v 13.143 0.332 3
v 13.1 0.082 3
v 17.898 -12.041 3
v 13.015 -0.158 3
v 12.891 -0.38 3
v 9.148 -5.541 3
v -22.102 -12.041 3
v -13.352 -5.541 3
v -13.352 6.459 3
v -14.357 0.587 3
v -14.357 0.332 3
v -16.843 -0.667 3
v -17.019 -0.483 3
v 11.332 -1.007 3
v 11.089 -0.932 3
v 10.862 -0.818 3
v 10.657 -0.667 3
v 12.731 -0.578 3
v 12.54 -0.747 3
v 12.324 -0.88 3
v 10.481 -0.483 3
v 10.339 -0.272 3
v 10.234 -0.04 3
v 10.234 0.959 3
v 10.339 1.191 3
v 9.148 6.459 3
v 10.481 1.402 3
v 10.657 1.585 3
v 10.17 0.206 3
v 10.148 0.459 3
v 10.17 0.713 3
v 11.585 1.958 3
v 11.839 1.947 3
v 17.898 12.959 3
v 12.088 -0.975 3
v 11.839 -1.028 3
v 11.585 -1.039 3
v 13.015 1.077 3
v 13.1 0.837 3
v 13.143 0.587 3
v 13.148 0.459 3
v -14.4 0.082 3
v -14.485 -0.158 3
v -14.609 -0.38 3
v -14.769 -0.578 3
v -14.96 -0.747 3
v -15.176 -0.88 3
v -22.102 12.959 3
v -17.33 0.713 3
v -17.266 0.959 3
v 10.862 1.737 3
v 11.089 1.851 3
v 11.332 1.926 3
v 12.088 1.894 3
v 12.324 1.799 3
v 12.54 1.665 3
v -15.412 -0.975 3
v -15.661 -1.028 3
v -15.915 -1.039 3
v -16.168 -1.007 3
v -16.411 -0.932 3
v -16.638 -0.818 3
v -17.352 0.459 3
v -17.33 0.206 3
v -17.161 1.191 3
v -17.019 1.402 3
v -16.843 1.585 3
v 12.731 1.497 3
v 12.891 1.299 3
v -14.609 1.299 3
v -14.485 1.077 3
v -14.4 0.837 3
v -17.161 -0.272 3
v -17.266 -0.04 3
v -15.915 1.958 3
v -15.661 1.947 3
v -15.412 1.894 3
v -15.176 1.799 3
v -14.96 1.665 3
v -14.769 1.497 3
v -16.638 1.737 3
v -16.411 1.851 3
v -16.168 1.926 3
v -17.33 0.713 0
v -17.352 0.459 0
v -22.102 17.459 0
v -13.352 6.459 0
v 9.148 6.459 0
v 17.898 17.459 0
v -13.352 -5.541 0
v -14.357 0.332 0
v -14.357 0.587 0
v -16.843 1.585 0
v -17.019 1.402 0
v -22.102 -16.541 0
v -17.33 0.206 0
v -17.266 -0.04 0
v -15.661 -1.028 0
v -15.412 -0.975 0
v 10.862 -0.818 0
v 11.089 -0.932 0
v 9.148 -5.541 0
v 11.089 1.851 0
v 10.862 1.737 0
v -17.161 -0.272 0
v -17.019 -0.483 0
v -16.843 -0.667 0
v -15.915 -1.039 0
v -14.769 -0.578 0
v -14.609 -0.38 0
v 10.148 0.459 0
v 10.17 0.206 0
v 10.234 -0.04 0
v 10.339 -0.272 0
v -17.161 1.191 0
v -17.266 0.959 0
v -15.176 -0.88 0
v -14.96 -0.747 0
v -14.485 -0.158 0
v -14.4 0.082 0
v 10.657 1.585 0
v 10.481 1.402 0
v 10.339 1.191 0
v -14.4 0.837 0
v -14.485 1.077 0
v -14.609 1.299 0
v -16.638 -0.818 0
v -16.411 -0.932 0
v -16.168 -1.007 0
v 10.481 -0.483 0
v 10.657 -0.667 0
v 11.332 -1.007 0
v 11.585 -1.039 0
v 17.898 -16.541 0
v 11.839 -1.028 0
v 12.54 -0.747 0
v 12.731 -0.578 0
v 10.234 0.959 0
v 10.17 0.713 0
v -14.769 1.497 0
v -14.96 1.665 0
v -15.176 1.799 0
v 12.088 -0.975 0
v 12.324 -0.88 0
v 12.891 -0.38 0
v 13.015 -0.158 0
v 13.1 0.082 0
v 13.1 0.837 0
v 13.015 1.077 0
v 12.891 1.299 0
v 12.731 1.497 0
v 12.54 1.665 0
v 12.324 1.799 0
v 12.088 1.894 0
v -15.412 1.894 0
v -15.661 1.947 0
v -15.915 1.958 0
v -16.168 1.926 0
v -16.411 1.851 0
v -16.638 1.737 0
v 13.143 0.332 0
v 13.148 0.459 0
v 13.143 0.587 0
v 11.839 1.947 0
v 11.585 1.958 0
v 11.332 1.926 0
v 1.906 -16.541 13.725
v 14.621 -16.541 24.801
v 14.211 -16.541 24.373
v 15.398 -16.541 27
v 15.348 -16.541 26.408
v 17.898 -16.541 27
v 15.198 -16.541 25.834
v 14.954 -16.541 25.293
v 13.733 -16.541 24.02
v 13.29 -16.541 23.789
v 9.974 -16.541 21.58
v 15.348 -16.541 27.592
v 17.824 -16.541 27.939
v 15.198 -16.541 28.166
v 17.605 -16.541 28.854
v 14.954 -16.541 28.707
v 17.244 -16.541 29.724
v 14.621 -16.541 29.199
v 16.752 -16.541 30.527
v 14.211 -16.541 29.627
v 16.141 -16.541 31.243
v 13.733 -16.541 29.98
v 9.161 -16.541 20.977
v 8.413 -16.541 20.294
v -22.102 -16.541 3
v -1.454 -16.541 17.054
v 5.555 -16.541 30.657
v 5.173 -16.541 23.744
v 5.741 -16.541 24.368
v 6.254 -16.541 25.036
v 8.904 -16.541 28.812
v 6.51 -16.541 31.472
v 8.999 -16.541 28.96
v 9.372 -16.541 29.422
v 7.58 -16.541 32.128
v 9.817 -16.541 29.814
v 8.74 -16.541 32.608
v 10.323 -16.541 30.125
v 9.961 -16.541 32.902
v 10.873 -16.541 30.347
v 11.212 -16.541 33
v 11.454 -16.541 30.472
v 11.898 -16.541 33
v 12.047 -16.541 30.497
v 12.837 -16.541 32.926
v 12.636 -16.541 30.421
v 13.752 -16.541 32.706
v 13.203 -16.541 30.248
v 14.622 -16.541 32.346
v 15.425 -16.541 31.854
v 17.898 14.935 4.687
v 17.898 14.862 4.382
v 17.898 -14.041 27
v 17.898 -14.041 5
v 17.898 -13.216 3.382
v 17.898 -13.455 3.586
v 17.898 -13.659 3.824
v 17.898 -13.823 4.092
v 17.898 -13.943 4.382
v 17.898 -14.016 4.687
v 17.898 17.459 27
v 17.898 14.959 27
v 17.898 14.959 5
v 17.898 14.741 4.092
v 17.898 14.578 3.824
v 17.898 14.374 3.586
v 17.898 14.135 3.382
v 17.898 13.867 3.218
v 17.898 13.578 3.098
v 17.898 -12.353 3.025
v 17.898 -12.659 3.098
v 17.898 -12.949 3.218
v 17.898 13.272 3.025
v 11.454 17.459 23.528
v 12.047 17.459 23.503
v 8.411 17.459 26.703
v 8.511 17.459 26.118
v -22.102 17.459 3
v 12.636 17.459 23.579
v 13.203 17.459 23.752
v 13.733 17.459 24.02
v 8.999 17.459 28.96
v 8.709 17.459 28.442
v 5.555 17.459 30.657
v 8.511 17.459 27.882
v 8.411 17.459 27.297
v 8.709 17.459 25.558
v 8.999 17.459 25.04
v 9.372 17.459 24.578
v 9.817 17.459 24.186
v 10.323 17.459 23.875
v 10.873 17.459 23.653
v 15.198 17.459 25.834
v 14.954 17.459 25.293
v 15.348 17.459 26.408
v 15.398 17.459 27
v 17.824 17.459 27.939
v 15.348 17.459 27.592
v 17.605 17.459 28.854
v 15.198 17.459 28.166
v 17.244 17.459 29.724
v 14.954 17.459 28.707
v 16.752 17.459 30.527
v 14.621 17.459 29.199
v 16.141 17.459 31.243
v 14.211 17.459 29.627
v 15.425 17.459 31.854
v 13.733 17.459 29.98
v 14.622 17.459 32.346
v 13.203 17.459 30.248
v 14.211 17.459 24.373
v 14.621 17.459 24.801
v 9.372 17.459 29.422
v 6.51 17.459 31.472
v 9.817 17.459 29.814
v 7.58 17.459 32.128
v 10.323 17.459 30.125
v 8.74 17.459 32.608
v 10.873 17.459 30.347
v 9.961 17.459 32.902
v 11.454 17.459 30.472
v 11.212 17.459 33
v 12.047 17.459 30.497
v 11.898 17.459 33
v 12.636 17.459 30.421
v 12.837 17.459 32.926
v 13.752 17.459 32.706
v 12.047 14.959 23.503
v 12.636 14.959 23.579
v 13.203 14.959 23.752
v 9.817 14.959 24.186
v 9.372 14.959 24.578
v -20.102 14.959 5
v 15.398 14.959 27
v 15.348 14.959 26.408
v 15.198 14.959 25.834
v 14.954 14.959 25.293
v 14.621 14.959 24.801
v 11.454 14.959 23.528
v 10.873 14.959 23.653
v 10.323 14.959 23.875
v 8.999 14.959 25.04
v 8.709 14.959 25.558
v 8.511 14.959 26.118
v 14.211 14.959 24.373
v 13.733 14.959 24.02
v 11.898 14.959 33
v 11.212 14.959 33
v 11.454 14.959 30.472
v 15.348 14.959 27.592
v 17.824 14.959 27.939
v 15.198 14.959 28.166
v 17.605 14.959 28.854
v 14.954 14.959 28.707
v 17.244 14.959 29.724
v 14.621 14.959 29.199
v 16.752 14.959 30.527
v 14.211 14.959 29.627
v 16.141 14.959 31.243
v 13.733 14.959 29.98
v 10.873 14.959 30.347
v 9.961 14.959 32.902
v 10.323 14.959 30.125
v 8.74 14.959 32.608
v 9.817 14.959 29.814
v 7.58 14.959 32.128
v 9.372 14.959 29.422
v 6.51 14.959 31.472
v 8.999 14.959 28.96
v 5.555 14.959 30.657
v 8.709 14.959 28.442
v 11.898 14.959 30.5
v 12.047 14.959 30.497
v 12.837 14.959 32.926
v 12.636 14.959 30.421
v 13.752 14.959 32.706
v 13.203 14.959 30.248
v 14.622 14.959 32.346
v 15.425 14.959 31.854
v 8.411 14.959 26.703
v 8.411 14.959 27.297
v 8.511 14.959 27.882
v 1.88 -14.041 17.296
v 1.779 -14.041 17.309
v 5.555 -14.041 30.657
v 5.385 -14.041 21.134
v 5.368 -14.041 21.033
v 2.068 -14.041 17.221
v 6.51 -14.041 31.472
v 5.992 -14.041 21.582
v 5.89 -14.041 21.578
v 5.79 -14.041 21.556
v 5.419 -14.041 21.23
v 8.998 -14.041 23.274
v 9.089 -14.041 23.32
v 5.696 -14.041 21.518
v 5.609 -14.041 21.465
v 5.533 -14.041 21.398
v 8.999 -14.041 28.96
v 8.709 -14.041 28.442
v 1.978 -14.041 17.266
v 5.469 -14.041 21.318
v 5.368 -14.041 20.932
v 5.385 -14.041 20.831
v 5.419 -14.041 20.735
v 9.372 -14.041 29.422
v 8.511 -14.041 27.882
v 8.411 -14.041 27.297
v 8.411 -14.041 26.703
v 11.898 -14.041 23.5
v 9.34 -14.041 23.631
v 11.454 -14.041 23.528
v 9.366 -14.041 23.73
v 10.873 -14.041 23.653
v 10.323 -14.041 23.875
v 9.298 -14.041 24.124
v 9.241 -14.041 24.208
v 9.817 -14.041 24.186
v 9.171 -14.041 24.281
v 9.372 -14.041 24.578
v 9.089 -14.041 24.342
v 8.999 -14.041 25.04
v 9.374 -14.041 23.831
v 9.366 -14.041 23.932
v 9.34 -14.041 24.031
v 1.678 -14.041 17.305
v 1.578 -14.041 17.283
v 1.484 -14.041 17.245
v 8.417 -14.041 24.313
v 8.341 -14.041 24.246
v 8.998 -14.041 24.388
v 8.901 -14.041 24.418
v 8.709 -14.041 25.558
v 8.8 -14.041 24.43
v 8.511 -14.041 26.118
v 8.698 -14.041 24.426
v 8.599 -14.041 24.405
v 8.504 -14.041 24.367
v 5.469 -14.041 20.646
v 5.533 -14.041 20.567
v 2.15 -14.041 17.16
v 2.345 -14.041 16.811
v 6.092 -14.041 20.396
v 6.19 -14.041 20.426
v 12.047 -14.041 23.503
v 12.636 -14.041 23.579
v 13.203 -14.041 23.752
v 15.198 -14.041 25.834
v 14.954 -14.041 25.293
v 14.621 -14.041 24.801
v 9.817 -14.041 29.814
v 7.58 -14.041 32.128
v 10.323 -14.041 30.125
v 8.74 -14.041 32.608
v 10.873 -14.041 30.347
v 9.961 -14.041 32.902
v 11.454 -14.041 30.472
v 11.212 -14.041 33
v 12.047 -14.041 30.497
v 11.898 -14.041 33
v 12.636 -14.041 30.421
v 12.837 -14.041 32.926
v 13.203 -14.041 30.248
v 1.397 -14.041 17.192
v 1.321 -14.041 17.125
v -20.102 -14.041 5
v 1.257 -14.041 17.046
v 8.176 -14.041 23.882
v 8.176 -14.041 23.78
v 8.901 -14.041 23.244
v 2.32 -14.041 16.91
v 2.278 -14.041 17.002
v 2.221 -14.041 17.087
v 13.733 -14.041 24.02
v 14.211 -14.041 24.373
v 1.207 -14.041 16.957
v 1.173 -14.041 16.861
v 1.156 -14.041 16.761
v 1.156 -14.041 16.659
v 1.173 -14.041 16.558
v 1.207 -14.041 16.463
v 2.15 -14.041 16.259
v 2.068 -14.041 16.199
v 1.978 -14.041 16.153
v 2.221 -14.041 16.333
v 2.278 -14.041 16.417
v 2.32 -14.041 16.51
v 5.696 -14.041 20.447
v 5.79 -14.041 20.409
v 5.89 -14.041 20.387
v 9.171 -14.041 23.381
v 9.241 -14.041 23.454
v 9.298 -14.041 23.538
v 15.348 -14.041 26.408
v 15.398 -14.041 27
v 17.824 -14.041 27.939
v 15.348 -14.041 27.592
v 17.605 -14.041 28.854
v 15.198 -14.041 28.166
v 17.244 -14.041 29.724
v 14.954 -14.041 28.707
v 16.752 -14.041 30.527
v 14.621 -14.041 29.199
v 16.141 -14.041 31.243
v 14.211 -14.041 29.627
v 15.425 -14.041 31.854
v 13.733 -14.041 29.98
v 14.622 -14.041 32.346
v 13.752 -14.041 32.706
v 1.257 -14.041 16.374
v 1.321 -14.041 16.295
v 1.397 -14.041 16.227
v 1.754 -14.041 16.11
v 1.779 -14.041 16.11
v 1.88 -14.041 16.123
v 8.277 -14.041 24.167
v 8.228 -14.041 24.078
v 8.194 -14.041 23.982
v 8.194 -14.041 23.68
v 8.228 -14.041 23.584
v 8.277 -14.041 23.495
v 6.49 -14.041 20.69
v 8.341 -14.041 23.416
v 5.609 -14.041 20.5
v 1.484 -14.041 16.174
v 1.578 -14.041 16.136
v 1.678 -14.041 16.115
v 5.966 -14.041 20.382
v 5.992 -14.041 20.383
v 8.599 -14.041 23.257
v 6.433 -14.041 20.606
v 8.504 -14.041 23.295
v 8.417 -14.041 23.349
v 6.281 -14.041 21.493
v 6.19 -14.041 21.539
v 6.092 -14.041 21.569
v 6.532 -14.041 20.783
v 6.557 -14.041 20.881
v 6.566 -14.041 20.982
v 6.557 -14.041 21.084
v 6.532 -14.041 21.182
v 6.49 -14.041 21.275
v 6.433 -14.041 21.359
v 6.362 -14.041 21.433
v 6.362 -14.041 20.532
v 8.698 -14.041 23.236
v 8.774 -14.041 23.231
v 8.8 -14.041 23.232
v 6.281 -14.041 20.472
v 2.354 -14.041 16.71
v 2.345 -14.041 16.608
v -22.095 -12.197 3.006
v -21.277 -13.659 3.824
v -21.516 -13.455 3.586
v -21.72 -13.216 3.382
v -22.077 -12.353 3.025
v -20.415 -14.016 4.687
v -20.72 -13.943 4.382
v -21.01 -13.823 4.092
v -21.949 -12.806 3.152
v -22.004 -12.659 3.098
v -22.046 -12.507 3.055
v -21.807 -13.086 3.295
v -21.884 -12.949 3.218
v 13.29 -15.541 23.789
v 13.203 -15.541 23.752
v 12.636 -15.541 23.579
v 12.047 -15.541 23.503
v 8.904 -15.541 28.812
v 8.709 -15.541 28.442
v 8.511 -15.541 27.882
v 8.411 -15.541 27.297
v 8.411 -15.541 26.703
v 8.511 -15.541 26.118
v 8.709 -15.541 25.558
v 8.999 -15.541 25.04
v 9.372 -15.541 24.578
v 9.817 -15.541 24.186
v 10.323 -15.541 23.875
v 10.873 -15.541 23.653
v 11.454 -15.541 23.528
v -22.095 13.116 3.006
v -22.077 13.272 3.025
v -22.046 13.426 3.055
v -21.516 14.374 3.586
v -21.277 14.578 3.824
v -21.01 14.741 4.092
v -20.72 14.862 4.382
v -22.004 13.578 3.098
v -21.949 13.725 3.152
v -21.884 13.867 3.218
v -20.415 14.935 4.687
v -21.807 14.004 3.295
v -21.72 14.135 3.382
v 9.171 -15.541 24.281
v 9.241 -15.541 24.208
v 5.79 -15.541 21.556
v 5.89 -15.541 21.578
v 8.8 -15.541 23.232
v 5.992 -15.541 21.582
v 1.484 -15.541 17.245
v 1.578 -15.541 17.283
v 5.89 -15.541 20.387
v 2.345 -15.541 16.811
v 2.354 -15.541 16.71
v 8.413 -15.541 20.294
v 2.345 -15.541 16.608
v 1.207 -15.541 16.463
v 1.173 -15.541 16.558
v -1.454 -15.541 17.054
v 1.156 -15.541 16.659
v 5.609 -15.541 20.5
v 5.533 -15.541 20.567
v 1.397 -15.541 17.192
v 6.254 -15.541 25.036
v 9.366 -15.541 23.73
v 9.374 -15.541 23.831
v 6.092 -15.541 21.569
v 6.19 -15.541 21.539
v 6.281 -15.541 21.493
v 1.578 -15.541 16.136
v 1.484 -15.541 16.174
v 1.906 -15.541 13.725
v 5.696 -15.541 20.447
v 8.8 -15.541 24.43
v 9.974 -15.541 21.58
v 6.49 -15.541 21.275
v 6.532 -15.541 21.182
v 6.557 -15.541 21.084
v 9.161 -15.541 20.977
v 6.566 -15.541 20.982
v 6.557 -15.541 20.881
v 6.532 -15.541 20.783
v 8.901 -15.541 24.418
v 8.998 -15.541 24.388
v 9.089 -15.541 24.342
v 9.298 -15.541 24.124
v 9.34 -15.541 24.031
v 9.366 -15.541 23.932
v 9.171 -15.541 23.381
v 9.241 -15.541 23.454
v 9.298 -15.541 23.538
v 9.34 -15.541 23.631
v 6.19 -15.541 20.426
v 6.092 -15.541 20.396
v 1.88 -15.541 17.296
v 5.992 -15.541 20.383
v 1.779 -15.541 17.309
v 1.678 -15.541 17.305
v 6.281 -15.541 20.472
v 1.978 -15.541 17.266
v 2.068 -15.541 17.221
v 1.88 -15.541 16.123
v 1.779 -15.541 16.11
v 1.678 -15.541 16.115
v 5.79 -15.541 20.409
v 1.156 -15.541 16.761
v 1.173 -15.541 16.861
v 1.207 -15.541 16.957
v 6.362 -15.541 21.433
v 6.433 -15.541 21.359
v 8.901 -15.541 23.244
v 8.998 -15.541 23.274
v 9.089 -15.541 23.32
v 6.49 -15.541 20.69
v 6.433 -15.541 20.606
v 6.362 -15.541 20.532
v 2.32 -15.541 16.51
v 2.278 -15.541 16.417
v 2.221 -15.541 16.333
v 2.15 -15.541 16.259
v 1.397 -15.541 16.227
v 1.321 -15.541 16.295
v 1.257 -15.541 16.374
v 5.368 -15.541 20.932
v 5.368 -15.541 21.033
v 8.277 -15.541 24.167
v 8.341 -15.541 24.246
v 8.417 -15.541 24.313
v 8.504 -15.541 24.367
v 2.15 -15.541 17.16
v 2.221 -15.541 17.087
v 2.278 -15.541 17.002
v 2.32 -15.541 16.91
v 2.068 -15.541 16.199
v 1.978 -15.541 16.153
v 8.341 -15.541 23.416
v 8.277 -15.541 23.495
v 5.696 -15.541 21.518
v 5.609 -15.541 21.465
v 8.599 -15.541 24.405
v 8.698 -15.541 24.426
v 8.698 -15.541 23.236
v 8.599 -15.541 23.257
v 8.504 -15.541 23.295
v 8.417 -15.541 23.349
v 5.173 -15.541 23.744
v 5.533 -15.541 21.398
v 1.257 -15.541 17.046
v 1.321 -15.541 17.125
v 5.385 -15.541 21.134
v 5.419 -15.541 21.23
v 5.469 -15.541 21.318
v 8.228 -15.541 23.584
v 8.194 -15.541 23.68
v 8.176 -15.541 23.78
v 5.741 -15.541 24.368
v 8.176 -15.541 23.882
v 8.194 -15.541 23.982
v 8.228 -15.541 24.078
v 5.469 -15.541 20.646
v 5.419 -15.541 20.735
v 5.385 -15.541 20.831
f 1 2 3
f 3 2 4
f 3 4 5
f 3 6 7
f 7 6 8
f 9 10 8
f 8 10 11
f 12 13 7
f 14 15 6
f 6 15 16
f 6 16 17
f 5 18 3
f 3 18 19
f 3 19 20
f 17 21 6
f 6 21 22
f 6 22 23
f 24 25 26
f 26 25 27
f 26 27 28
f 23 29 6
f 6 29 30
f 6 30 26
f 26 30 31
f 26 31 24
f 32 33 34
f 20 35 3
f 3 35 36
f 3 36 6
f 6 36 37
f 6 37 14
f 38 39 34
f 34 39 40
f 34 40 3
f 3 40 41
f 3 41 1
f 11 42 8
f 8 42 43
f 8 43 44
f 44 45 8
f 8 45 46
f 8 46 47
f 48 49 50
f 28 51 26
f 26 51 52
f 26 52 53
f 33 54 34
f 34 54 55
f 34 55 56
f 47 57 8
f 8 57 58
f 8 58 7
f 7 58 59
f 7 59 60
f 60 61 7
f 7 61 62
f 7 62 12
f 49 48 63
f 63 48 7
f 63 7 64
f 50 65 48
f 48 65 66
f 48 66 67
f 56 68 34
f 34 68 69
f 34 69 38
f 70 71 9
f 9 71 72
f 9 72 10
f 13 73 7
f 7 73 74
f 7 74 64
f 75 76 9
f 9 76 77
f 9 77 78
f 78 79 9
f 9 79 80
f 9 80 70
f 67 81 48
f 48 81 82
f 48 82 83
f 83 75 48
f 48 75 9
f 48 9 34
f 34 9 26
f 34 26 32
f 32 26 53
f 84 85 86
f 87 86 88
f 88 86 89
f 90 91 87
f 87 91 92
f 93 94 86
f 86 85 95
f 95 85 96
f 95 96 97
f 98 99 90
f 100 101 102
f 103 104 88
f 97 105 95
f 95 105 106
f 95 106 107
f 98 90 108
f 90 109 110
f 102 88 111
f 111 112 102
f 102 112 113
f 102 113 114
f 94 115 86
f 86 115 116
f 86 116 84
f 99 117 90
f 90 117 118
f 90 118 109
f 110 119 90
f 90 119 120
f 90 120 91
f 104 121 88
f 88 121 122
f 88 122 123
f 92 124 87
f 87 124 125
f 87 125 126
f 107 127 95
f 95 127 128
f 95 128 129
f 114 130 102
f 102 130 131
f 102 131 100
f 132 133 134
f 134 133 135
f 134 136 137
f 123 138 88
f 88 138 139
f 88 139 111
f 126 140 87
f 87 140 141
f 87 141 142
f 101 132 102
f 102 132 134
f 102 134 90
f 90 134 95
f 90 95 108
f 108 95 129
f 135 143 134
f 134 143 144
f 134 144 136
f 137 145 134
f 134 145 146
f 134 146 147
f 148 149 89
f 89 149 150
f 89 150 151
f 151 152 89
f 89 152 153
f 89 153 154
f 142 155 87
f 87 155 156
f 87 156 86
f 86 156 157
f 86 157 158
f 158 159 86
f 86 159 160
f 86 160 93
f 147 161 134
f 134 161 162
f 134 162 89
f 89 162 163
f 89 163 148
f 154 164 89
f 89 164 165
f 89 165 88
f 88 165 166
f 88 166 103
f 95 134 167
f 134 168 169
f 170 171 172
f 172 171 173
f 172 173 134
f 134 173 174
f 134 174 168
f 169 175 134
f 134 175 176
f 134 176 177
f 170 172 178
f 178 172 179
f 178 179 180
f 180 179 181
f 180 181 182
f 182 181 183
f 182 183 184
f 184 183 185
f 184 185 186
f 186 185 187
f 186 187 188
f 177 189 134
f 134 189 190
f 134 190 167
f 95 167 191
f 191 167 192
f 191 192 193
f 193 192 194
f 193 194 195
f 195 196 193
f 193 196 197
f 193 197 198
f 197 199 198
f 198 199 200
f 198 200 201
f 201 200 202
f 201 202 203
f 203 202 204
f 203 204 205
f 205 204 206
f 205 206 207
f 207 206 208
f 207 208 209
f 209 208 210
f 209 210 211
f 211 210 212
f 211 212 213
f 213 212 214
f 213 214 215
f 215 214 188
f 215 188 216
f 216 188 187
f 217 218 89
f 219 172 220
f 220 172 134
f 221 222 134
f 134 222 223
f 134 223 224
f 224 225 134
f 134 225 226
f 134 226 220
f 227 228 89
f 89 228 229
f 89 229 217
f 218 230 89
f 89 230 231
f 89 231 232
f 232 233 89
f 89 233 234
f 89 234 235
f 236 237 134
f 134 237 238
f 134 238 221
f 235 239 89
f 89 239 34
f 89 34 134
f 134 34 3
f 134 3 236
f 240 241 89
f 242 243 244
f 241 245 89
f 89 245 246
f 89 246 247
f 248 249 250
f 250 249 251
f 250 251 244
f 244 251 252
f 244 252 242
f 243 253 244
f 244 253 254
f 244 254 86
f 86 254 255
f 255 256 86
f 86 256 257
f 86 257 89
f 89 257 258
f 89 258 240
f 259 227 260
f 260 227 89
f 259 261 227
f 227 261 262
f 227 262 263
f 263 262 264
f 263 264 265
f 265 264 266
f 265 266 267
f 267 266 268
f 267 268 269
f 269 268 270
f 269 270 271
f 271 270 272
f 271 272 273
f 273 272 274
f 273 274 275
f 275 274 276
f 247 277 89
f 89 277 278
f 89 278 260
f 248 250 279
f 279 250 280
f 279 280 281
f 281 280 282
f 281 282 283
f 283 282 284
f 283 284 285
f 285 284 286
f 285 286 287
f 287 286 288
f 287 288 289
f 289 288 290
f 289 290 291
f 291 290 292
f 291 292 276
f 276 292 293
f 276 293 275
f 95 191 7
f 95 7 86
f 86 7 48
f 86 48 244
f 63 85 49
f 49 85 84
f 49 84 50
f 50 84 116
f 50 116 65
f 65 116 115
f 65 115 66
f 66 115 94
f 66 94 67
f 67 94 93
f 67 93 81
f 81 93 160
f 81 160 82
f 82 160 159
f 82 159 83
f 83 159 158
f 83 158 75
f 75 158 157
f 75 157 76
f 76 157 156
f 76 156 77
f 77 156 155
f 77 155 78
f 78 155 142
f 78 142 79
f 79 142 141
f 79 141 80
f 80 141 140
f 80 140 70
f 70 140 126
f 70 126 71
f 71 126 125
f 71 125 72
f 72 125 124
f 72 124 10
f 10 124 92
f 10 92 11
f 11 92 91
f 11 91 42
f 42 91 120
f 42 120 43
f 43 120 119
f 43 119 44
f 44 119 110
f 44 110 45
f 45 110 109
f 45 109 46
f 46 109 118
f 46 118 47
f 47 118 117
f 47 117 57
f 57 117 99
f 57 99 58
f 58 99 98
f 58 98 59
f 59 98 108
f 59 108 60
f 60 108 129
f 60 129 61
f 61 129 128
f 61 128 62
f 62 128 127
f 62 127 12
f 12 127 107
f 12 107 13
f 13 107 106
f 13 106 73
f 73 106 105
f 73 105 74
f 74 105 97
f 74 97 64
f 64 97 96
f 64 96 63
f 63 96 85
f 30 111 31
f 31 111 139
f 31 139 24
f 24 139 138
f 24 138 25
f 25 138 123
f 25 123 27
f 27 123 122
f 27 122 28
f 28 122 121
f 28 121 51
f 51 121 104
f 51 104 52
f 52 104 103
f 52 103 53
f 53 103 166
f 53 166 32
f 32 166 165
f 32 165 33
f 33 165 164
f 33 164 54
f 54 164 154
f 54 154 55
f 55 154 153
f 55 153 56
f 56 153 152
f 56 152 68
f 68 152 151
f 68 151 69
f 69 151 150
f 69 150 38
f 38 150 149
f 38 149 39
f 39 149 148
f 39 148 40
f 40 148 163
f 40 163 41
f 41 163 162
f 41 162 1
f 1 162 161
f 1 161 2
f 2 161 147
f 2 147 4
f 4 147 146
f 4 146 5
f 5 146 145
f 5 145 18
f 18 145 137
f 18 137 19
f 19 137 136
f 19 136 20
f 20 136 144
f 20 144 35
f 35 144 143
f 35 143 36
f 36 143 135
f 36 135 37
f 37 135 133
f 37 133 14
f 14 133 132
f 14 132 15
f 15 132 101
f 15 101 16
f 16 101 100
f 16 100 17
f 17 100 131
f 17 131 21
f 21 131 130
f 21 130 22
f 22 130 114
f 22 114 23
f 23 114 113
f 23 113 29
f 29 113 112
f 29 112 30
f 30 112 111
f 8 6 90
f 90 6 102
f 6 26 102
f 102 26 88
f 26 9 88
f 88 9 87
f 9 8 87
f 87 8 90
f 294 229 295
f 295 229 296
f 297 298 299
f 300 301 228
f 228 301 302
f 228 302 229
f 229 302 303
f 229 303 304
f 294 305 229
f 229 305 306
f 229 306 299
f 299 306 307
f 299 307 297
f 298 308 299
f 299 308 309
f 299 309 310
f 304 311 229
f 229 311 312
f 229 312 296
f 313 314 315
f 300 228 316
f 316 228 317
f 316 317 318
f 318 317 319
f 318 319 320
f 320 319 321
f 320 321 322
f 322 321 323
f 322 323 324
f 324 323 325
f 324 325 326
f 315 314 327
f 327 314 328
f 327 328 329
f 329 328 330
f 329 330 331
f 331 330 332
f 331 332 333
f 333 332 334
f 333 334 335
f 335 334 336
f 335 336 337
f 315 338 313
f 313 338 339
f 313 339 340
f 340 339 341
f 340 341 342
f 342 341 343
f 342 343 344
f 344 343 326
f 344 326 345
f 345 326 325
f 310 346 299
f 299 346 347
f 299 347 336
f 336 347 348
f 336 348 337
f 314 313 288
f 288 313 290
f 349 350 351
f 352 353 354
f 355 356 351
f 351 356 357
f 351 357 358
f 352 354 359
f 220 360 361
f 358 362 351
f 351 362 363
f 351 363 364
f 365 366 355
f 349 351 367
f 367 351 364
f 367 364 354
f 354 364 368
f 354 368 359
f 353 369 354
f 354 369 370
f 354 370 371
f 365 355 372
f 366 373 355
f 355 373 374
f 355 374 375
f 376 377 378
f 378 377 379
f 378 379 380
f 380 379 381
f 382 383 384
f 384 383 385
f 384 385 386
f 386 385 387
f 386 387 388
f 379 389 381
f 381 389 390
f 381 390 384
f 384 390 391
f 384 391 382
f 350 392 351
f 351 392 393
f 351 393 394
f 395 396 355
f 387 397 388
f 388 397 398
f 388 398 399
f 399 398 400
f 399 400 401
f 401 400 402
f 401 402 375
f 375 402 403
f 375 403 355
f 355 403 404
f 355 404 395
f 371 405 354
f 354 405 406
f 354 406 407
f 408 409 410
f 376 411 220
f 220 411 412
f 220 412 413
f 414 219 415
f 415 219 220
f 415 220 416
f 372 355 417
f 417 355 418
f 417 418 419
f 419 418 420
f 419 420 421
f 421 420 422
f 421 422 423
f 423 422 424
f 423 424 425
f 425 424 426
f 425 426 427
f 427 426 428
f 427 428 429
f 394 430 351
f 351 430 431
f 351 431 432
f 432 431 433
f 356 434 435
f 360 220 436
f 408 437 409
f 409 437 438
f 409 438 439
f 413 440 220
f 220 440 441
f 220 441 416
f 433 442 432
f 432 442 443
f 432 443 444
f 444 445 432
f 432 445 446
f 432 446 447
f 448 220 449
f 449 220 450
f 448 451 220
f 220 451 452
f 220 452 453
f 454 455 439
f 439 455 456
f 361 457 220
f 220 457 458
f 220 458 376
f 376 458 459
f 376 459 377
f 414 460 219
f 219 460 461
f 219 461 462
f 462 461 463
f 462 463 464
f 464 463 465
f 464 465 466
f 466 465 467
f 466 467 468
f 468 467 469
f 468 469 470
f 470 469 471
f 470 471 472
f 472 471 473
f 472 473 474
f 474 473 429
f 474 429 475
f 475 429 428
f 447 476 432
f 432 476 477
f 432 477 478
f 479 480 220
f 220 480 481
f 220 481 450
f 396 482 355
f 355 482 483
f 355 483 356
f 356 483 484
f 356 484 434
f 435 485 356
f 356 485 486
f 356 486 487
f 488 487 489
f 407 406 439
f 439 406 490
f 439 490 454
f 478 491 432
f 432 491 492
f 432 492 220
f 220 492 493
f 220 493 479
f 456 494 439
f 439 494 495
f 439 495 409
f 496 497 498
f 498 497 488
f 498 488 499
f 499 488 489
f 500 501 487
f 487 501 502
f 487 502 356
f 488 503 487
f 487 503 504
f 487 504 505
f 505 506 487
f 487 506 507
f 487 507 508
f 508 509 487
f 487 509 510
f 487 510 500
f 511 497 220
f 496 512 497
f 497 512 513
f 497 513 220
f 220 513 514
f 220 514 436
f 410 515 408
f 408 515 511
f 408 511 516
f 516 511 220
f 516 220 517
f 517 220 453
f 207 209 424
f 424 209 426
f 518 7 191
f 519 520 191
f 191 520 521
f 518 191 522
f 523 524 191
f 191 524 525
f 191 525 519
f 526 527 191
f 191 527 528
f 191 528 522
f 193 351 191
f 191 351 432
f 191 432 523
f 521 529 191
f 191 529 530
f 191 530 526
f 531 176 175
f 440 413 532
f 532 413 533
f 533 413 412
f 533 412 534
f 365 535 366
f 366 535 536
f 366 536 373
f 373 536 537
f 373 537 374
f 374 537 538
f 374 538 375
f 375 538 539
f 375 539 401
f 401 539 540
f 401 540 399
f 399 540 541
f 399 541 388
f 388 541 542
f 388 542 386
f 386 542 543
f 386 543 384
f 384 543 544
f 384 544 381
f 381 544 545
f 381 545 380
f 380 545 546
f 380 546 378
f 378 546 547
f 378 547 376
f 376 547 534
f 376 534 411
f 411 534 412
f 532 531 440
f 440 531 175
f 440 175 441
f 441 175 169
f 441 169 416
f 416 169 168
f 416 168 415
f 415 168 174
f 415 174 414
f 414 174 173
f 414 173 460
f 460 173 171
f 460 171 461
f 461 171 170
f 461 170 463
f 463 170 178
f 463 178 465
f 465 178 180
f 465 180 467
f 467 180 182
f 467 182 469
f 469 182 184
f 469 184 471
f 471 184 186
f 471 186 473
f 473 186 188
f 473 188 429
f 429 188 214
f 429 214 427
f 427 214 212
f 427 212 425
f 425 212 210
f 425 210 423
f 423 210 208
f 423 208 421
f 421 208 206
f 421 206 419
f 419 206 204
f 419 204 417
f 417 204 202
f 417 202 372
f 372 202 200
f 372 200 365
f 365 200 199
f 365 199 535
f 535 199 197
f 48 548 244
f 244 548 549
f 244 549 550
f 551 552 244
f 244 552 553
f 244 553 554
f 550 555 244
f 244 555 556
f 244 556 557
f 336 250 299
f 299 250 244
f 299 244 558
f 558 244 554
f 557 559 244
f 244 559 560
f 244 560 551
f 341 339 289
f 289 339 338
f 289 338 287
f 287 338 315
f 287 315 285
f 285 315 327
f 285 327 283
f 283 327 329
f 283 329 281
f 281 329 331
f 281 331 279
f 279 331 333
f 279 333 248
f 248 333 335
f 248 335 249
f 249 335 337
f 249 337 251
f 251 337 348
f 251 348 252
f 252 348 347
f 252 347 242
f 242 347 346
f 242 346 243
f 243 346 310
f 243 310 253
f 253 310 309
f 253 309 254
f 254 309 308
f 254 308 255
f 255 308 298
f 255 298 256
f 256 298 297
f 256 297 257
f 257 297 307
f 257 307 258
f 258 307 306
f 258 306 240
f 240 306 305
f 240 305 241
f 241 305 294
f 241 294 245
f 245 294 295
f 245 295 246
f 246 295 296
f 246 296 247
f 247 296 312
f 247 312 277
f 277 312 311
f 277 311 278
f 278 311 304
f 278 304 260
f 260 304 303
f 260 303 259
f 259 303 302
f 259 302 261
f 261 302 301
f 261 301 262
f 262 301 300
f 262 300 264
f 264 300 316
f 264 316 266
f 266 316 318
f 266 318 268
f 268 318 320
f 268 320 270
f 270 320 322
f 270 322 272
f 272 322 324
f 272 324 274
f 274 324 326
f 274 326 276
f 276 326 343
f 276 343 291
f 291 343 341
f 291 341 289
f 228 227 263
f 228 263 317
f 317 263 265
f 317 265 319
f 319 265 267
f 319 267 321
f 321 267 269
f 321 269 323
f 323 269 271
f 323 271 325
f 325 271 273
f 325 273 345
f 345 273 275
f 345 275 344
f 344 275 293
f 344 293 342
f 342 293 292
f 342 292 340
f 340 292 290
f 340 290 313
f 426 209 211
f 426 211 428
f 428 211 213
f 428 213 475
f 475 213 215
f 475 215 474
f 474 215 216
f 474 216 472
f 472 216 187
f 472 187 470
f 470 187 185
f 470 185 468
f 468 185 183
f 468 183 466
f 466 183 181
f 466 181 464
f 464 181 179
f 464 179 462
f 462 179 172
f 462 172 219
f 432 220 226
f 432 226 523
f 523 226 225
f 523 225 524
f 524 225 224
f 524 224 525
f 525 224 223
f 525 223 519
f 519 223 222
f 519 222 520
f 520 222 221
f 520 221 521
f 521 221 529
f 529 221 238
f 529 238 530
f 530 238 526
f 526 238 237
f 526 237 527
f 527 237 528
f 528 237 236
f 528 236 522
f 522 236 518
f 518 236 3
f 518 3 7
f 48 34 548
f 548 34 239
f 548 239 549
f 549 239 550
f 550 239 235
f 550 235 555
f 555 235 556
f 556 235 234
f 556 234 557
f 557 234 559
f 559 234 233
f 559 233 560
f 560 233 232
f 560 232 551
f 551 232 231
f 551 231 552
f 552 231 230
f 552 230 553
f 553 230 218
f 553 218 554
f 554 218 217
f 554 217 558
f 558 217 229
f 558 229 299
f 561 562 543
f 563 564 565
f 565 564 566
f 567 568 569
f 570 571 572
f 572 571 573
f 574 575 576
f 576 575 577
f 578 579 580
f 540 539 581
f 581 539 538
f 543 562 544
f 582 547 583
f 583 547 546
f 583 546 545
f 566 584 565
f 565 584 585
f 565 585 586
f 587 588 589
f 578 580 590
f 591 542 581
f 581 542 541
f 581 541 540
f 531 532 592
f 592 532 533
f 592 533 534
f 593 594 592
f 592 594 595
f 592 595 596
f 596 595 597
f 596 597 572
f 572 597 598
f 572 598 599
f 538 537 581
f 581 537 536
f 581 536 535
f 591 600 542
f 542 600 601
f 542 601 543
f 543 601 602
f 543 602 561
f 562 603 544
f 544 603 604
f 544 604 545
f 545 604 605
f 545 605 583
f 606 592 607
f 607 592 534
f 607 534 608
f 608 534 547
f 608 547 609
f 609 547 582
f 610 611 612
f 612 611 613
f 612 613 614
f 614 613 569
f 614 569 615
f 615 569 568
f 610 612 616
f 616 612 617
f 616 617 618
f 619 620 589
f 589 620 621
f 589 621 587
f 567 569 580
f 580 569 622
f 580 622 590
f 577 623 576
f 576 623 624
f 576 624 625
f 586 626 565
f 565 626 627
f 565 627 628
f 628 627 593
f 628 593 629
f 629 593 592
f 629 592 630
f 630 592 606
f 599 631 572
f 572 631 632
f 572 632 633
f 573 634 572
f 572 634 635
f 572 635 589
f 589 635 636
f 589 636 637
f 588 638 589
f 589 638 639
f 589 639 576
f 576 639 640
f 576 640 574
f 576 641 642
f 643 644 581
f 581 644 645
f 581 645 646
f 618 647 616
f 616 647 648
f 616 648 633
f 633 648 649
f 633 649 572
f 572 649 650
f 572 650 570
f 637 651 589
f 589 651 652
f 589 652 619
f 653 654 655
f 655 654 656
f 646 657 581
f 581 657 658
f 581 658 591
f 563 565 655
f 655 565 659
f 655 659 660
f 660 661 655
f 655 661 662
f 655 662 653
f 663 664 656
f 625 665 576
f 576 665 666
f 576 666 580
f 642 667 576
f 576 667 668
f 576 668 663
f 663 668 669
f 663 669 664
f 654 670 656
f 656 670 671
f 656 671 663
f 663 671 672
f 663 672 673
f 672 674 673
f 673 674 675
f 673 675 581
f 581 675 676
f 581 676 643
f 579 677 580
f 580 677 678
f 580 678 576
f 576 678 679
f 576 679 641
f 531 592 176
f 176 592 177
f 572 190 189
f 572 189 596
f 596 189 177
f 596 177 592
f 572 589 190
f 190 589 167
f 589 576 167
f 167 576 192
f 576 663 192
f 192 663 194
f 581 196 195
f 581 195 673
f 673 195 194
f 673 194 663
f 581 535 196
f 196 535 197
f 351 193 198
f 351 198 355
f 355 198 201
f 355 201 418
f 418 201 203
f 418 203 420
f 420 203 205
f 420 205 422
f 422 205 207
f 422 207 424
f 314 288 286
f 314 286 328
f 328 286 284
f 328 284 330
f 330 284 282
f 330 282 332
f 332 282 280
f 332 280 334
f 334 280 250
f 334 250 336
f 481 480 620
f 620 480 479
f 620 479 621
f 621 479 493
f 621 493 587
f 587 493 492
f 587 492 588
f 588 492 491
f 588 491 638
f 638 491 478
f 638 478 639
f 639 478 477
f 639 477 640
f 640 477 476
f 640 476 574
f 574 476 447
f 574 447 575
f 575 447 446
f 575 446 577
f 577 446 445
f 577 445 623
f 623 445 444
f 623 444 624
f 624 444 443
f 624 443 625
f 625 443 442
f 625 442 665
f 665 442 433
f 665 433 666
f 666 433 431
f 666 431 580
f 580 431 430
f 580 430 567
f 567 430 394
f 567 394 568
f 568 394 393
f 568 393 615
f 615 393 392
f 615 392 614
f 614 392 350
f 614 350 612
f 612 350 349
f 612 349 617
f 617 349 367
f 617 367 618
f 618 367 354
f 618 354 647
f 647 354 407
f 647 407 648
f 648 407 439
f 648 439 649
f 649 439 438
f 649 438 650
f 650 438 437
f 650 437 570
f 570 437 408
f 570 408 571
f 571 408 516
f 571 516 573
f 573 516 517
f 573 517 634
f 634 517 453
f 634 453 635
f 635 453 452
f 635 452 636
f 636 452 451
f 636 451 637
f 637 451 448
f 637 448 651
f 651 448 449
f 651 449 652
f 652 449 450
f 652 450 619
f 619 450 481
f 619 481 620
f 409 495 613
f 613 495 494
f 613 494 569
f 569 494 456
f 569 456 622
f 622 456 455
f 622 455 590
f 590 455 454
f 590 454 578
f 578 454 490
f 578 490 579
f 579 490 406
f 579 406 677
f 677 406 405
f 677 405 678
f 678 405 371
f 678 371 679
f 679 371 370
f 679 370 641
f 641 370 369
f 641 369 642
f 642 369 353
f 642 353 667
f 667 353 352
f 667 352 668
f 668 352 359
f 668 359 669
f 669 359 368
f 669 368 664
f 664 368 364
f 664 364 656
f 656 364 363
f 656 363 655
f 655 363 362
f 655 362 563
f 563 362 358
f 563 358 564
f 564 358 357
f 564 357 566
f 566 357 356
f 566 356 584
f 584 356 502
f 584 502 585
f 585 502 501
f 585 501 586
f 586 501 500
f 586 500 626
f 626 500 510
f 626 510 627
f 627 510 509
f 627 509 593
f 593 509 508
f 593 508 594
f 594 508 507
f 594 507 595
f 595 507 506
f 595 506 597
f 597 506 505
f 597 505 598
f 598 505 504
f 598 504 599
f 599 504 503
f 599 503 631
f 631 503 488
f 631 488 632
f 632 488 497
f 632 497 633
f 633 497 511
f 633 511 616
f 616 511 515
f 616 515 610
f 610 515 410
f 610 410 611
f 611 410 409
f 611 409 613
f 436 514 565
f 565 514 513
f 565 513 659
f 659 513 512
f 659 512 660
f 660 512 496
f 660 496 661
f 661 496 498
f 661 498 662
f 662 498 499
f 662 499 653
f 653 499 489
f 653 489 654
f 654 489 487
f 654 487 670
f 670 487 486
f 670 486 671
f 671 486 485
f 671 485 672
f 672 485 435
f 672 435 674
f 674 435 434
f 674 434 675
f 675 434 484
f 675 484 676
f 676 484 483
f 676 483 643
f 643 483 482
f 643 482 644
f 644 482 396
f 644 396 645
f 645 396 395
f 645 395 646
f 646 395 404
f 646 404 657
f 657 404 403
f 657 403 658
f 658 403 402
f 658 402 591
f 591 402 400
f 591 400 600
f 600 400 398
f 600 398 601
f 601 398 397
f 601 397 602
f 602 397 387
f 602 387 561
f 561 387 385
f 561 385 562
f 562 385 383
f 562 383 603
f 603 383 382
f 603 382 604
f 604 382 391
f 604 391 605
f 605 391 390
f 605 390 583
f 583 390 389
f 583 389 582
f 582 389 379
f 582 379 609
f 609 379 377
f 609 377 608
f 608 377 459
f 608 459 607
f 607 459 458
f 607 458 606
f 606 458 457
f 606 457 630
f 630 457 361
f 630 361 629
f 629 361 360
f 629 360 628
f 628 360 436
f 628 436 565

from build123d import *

# Parameters (mm, degrees)
ESBO_O1_W                  = 40
ESBO_O1_H                  = 34
ESBO_O1_R                  = 1.5
ESBO_O1_W_2                = 22.5
ESBO_O1_H_2                = 12
RESSALTO_EXTRUS_O1_DEPTH   = 3
ESBO_O2_W                  = 40
ESBO_O2_H                  = 2.5
RESSALTO_EXTRUS_O2_DEPTH   = 30
CORTE_EXTRUS_O1_DEPTH      = 53.282720471
CORTE_EXTRUS_O1_DEPTH_BACK = 53.282720471
ESBO_O3_R                  = 3.5
FILETE1_R                  = 6
FILETE2_R                  = 2
CORTE_EXTRUS_O2_DEPTH      = 1
FILETE4_R                  = 8
CORTE_EXTRUS_O3_REACH      = 53.638
ESBO_O5_R                  = 0.6


with BuildPart() as part:
    # Esboço1 → Ressalto-extrusão1 (new body)
    with BuildSketch(Plane.XY):
        with Locations((-2.101648352, 0.459478022)):
            Rectangle(ESBO_O1_W, ESBO_O1_H)
        with Locations((11.648351648, 0.459478022)):
            Circle(ESBO_O1_R, mode=Mode.SUBTRACT)
        with Locations(Location((-15.851648352, 0.459478022, 0), (0, 0, 180))):
            Circle(ESBO_O1_R, mode=Mode.SUBTRACT)
        with Locations((-2.101648352, 0.459478022)):
            Rectangle(ESBO_O1_W_2, ESBO_O1_H_2, mode=Mode.SUBTRACT)
    extrude(amount=RESSALTO_EXTRUS_O1_DEPTH)

    # Esboço2 → Ressalto-extrusão2 (add)
    with BuildSketch(Plane.XY.offset(3)):
        with Locations((-2.101648352, 16.209478022)):
            Rectangle(ESBO_O2_W, ESBO_O2_H)
        with Locations((-2.101648352, -15.290521978)):
            Rectangle(ESBO_O2_W, ESBO_O2_H)
    extrude(amount=RESSALTO_EXTRUS_O2_DEPTH)

    # Esboço3 → Corte-extrusão1 (cut, two sides: drawn at the far end of the back side and taken through both)
    with BuildSketch(Plane.XZ.offset(16.540521978).offset(-CORTE_EXTRUS_O1_DEPTH_BACK)):
        with Locations(Location((11.898351648, 27, 0), (0, 0, 270))):
            Circle(ESBO_O3_R)
        Polygon((-22.101648352, 3), (7.898351648, 33), (-22.101648352, 33), align=None)
    extrude(amount=CORTE_EXTRUS_O1_DEPTH + CORTE_EXTRUS_O1_DEPTH_BACK, mode=Mode.SUBTRACT)

    # Filete1
    filete1_edges = [part.edges().sort_by_distance(p)[0] for p in [
        (17.898351648, 16.209478022, 33),
        (17.898351648, -15.290521978, 33),
    ]]
    fillet(filete1_edges, radius=FILETE1_R)

    # Filete2
    filete2_edges = [part.edges().sort_by_distance(p)[0] for p in [
        (-2.101648352, 14.959478022, 3),
        (-2.101648352, -14.040521978, 3),
    ]]
    fillet(filete2_edges, radius=FILETE2_R)

    # Esboço4 → Corte-extrusão2 (cut)
    with BuildSketch(Plane.XZ.offset(16.540521978)):
        with BuildLine():
            Line((5.173317787, 23.74427083), (-1.45414508, 17.053728929))
            Line((-1.45414508, 17.053728929), (1.905973753, 13.7252896))
            Line((1.905973753, 13.7252896), (8.413154378, 20.294404433))
            ThreePointArc((8.413154378, 20.294404433), (9.16091607, 20.97650137), (9.973796219, 21.579518488))
            Line((9.973796219, 21.579518488), (13.290279513, 23.788686123))
            Line((13.290279513, 23.788686123), (11.68978022, 23.506220104))
            Line((11.68978022, 23.506220104), (8.398351648, 27))
            Line((8.398351648, 27), (8.903771348, 28.811764009))
            Line((8.903771348, 28.811764009), (6.253622951, 25.036396208))
            ThreePointArc((6.253622951, 25.036396208), (5.740721803, 24.367549457), (5.173317787, 23.74427083))
        make_face()
    extrude(amount=-CORTE_EXTRUS_O2_DEPTH, mode=Mode.SUBTRACT)

    # Filete4
    filete4_edges = [part.edges().sort_by_distance(p)[0] for p in [
        (7.898351648, -15.290521978, 33),
        (7.898351648, 16.209478022, 33),
    ]]
    fillet(filete4_edges, radius=FILETE4_R)

    # Esboço5 → Corte-extrusão3 (cut, up to next)
    with BuildSketch(Plane(origin=(0, -15.540521978, 0), x_dir=(-1, 0, 0), z_dir=(0, -1, 0)), mode=Mode.PRIVATE) as corte_extrus_o3_sk1:
        with Locations(Location((-8.774251962, -23.831009443, 0), (0, 0, 180))):
            Circle(ESBO_O5_R)
    corte_extrus_o3_tool1 = extrude(corte_extrus_o3_sk1.sketch, amount=-CORTE_EXTRUS_O3_REACH, mode=Mode.PRIVATE) & part.part
    # Esboço5 → Corte-extrusão3 (cut, up to next)
    with BuildSketch(Plane(origin=(0, -15.540521978, 0), x_dir=(-1, 0, 0), z_dir=(0, -1, 0)), mode=Mode.PRIVATE) as corte_extrus_o3_sk2:
        with Locations(Location((-5.966072468, -20.982478606, 0), (0, 0, 180))):
            Circle(ESBO_O5_R)
    corte_extrus_o3_tool2 = extrude(corte_extrus_o3_sk2.sketch, amount=-CORTE_EXTRUS_O3_REACH, mode=Mode.PRIVATE) & part.part
    # Esboço5 → Corte-extrusão3 (cut, up to next)
    with BuildSketch(Plane(origin=(0, -15.540521978, 0), x_dir=(-1, 0, 0), z_dir=(0, -1, 0)), mode=Mode.PRIVATE) as corte_extrus_o3_sk3:
        with Locations(Location((-1.753803228, -16.70968235, 0), (0, 0, 180))):
            Circle(ESBO_O5_R)
    corte_extrus_o3_tool3 = extrude(corte_extrus_o3_sk3.sketch, amount=-CORTE_EXTRUS_O3_REACH, mode=Mode.PRIVATE) & part.part
    add(corte_extrus_o3_tool1.solids().sort_by_distance((8.774252, -15.540522, 23.831009))[0], mode=Mode.SUBTRACT)
    add(corte_extrus_o3_tool2.solids().sort_by_distance((5.966072, -15.540522, 20.982479))[0], mode=Mode.SUBTRACT)
    add(corte_extrus_o3_tool3.solids().sort_by_distance((1.753803, -15.540522, 16.709682))[0], mode=Mode.SUBTRACT)


solid = part.part
